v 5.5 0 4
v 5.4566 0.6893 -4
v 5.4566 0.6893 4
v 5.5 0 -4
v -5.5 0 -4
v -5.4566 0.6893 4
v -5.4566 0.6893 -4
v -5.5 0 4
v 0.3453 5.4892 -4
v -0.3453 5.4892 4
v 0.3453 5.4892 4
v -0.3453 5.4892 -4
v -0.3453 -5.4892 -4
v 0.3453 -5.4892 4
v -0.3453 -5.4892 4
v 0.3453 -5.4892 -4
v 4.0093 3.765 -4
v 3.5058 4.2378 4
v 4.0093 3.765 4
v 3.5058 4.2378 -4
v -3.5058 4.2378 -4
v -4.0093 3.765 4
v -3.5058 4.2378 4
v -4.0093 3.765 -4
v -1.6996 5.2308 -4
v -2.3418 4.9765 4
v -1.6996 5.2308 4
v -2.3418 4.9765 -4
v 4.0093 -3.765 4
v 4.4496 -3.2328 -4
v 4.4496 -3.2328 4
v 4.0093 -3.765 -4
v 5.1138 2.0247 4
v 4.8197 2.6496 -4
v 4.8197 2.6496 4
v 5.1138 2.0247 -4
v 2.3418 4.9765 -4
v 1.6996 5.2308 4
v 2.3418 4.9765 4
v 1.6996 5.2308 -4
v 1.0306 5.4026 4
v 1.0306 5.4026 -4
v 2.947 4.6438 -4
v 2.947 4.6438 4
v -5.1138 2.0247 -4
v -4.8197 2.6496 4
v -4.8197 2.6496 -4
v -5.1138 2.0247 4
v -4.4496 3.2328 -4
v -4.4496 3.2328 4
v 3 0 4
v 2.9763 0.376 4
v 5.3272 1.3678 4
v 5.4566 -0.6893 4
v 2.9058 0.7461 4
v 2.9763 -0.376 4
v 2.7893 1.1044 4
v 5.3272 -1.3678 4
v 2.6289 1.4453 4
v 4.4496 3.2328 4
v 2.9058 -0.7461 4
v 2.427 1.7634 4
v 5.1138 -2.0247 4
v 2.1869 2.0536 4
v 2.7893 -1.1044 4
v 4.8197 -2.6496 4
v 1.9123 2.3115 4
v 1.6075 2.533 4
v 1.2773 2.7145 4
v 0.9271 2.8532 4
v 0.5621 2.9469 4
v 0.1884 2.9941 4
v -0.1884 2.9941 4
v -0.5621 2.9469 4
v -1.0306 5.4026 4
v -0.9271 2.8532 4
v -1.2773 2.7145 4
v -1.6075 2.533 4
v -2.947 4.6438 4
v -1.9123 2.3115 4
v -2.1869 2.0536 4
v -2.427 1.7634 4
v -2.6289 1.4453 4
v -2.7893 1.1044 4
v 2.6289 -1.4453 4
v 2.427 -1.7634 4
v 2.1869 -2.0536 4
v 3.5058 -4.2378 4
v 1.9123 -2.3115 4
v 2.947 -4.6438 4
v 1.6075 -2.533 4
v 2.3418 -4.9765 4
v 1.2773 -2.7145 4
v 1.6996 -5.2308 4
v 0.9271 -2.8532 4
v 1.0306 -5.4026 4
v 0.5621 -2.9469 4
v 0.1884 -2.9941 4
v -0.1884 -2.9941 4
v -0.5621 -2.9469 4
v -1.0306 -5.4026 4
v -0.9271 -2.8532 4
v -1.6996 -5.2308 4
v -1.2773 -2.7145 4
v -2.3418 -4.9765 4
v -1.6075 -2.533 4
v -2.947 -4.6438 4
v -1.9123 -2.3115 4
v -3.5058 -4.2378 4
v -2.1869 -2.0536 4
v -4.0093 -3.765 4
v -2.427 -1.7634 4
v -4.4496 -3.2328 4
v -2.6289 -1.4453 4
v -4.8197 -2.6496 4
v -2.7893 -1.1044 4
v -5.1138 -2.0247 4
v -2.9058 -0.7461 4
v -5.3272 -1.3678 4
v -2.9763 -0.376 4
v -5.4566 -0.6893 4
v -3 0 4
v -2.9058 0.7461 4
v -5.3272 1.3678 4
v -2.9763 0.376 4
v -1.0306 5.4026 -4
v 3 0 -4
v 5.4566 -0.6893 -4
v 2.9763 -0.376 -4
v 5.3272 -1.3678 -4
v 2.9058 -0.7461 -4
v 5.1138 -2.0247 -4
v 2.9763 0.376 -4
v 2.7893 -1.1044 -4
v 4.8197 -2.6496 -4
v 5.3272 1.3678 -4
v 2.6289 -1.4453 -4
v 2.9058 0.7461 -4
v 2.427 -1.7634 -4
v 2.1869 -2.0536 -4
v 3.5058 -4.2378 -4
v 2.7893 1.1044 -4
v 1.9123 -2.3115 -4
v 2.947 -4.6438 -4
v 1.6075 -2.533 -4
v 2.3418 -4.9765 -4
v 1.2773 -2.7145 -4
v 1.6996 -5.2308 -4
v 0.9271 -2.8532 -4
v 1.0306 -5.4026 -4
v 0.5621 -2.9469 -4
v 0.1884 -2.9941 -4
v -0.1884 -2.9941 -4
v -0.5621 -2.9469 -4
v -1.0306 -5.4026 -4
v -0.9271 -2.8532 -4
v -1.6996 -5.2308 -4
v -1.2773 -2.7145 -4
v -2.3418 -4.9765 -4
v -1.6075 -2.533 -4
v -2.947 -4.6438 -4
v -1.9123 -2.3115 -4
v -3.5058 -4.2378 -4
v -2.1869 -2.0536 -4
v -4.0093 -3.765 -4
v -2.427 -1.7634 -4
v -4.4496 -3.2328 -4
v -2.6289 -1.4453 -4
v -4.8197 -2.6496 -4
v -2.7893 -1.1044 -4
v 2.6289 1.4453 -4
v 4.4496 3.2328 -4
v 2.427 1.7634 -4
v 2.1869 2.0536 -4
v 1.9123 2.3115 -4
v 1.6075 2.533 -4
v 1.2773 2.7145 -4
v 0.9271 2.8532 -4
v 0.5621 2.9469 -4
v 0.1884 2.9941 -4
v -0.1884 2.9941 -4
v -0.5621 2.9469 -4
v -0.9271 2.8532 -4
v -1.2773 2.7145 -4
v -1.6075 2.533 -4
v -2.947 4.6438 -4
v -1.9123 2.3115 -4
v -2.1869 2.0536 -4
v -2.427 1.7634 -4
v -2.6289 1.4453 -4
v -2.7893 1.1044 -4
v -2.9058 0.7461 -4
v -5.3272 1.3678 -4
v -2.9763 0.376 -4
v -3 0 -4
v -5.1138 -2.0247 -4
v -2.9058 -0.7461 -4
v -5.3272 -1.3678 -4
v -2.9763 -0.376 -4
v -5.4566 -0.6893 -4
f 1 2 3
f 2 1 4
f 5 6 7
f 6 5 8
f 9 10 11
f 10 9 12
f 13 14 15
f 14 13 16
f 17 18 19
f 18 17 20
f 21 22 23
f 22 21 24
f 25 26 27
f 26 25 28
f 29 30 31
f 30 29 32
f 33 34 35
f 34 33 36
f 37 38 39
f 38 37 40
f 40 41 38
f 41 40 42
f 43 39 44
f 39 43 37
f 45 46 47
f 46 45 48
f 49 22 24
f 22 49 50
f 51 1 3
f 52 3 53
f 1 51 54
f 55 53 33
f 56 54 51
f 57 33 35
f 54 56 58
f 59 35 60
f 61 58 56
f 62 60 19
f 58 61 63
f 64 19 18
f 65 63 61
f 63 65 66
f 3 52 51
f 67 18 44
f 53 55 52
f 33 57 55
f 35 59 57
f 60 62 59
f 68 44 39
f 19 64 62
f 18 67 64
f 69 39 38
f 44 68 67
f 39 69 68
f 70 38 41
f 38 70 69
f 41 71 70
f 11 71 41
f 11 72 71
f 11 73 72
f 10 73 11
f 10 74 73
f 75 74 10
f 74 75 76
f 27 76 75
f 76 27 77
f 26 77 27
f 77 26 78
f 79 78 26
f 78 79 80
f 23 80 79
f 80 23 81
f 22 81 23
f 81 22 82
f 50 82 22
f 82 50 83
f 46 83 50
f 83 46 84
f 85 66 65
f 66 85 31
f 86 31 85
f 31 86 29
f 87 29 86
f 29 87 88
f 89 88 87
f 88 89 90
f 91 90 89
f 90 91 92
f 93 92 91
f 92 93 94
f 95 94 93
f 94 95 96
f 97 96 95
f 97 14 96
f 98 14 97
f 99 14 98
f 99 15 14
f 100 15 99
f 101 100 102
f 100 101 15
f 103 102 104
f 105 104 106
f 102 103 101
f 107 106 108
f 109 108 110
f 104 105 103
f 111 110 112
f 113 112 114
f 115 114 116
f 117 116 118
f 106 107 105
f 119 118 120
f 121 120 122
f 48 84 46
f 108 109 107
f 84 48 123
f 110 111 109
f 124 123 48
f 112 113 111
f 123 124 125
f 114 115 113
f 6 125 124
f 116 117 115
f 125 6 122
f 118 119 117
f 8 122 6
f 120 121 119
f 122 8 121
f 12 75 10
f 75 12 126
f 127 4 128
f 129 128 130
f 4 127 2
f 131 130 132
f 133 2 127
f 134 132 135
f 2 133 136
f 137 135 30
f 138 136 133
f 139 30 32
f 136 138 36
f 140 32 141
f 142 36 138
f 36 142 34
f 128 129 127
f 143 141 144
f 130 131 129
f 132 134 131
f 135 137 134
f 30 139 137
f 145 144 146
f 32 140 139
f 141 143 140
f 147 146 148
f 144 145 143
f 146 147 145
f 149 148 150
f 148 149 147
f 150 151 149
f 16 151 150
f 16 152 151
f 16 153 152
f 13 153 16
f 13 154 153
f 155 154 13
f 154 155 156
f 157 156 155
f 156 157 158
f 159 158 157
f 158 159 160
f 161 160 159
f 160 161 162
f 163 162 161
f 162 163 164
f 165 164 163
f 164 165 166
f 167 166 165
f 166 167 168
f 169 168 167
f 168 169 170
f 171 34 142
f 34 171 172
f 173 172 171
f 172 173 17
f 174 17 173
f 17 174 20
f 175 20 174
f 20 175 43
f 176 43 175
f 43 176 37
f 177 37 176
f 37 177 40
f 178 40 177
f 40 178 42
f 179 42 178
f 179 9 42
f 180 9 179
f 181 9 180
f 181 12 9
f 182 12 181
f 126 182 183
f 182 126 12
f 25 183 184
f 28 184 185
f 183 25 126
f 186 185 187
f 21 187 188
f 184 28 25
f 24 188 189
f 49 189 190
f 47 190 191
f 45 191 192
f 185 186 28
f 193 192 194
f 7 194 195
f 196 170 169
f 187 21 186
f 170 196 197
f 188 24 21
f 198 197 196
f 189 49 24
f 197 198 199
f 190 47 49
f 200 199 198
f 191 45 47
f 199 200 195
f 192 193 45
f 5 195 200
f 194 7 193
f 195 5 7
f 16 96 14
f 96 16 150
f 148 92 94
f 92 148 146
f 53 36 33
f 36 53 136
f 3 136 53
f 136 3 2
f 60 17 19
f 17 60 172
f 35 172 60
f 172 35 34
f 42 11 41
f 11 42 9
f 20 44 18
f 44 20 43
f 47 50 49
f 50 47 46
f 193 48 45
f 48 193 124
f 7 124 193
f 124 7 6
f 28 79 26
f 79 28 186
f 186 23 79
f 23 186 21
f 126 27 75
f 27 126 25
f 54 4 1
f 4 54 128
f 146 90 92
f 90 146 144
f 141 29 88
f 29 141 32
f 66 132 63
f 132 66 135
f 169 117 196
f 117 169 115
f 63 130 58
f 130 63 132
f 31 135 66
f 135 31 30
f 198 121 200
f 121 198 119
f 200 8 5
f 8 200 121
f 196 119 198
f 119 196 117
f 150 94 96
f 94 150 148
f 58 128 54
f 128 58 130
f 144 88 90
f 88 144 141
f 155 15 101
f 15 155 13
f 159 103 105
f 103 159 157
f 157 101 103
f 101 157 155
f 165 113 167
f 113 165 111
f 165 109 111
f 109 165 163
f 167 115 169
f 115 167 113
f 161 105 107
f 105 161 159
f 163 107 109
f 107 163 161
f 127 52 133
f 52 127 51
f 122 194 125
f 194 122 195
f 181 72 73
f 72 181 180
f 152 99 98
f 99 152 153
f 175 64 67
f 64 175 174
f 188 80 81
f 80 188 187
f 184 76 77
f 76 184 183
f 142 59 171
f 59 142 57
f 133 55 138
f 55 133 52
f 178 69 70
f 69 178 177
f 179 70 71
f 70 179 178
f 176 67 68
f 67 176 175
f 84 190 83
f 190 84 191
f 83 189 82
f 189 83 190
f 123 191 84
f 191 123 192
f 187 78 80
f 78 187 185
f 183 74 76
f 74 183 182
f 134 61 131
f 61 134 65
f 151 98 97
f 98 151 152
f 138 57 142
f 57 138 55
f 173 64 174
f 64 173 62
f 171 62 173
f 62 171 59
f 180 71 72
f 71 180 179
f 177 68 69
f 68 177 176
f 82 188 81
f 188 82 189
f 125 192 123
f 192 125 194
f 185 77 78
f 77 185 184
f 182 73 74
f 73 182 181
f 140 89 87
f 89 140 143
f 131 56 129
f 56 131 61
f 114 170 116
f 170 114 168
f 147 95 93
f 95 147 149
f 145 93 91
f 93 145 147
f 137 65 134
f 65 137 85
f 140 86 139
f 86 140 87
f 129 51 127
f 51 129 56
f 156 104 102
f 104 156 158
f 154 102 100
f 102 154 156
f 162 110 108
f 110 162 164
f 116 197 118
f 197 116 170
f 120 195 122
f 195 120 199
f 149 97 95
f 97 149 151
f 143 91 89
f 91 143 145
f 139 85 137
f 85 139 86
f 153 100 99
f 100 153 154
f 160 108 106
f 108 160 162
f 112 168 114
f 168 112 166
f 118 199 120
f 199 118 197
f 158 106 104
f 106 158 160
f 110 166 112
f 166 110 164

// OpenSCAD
$fn = 50;


difference() {
	union() {
		translate(v = [0, 0, -4.0000000000]) {
			cylinder(h = 8, r = 5.5000000000);
		}
	}
	union() {
		translate(v = [0, 0, -100.0000000000]) {
			cylinder(h = 200, r = 3);
		}
	}
}
